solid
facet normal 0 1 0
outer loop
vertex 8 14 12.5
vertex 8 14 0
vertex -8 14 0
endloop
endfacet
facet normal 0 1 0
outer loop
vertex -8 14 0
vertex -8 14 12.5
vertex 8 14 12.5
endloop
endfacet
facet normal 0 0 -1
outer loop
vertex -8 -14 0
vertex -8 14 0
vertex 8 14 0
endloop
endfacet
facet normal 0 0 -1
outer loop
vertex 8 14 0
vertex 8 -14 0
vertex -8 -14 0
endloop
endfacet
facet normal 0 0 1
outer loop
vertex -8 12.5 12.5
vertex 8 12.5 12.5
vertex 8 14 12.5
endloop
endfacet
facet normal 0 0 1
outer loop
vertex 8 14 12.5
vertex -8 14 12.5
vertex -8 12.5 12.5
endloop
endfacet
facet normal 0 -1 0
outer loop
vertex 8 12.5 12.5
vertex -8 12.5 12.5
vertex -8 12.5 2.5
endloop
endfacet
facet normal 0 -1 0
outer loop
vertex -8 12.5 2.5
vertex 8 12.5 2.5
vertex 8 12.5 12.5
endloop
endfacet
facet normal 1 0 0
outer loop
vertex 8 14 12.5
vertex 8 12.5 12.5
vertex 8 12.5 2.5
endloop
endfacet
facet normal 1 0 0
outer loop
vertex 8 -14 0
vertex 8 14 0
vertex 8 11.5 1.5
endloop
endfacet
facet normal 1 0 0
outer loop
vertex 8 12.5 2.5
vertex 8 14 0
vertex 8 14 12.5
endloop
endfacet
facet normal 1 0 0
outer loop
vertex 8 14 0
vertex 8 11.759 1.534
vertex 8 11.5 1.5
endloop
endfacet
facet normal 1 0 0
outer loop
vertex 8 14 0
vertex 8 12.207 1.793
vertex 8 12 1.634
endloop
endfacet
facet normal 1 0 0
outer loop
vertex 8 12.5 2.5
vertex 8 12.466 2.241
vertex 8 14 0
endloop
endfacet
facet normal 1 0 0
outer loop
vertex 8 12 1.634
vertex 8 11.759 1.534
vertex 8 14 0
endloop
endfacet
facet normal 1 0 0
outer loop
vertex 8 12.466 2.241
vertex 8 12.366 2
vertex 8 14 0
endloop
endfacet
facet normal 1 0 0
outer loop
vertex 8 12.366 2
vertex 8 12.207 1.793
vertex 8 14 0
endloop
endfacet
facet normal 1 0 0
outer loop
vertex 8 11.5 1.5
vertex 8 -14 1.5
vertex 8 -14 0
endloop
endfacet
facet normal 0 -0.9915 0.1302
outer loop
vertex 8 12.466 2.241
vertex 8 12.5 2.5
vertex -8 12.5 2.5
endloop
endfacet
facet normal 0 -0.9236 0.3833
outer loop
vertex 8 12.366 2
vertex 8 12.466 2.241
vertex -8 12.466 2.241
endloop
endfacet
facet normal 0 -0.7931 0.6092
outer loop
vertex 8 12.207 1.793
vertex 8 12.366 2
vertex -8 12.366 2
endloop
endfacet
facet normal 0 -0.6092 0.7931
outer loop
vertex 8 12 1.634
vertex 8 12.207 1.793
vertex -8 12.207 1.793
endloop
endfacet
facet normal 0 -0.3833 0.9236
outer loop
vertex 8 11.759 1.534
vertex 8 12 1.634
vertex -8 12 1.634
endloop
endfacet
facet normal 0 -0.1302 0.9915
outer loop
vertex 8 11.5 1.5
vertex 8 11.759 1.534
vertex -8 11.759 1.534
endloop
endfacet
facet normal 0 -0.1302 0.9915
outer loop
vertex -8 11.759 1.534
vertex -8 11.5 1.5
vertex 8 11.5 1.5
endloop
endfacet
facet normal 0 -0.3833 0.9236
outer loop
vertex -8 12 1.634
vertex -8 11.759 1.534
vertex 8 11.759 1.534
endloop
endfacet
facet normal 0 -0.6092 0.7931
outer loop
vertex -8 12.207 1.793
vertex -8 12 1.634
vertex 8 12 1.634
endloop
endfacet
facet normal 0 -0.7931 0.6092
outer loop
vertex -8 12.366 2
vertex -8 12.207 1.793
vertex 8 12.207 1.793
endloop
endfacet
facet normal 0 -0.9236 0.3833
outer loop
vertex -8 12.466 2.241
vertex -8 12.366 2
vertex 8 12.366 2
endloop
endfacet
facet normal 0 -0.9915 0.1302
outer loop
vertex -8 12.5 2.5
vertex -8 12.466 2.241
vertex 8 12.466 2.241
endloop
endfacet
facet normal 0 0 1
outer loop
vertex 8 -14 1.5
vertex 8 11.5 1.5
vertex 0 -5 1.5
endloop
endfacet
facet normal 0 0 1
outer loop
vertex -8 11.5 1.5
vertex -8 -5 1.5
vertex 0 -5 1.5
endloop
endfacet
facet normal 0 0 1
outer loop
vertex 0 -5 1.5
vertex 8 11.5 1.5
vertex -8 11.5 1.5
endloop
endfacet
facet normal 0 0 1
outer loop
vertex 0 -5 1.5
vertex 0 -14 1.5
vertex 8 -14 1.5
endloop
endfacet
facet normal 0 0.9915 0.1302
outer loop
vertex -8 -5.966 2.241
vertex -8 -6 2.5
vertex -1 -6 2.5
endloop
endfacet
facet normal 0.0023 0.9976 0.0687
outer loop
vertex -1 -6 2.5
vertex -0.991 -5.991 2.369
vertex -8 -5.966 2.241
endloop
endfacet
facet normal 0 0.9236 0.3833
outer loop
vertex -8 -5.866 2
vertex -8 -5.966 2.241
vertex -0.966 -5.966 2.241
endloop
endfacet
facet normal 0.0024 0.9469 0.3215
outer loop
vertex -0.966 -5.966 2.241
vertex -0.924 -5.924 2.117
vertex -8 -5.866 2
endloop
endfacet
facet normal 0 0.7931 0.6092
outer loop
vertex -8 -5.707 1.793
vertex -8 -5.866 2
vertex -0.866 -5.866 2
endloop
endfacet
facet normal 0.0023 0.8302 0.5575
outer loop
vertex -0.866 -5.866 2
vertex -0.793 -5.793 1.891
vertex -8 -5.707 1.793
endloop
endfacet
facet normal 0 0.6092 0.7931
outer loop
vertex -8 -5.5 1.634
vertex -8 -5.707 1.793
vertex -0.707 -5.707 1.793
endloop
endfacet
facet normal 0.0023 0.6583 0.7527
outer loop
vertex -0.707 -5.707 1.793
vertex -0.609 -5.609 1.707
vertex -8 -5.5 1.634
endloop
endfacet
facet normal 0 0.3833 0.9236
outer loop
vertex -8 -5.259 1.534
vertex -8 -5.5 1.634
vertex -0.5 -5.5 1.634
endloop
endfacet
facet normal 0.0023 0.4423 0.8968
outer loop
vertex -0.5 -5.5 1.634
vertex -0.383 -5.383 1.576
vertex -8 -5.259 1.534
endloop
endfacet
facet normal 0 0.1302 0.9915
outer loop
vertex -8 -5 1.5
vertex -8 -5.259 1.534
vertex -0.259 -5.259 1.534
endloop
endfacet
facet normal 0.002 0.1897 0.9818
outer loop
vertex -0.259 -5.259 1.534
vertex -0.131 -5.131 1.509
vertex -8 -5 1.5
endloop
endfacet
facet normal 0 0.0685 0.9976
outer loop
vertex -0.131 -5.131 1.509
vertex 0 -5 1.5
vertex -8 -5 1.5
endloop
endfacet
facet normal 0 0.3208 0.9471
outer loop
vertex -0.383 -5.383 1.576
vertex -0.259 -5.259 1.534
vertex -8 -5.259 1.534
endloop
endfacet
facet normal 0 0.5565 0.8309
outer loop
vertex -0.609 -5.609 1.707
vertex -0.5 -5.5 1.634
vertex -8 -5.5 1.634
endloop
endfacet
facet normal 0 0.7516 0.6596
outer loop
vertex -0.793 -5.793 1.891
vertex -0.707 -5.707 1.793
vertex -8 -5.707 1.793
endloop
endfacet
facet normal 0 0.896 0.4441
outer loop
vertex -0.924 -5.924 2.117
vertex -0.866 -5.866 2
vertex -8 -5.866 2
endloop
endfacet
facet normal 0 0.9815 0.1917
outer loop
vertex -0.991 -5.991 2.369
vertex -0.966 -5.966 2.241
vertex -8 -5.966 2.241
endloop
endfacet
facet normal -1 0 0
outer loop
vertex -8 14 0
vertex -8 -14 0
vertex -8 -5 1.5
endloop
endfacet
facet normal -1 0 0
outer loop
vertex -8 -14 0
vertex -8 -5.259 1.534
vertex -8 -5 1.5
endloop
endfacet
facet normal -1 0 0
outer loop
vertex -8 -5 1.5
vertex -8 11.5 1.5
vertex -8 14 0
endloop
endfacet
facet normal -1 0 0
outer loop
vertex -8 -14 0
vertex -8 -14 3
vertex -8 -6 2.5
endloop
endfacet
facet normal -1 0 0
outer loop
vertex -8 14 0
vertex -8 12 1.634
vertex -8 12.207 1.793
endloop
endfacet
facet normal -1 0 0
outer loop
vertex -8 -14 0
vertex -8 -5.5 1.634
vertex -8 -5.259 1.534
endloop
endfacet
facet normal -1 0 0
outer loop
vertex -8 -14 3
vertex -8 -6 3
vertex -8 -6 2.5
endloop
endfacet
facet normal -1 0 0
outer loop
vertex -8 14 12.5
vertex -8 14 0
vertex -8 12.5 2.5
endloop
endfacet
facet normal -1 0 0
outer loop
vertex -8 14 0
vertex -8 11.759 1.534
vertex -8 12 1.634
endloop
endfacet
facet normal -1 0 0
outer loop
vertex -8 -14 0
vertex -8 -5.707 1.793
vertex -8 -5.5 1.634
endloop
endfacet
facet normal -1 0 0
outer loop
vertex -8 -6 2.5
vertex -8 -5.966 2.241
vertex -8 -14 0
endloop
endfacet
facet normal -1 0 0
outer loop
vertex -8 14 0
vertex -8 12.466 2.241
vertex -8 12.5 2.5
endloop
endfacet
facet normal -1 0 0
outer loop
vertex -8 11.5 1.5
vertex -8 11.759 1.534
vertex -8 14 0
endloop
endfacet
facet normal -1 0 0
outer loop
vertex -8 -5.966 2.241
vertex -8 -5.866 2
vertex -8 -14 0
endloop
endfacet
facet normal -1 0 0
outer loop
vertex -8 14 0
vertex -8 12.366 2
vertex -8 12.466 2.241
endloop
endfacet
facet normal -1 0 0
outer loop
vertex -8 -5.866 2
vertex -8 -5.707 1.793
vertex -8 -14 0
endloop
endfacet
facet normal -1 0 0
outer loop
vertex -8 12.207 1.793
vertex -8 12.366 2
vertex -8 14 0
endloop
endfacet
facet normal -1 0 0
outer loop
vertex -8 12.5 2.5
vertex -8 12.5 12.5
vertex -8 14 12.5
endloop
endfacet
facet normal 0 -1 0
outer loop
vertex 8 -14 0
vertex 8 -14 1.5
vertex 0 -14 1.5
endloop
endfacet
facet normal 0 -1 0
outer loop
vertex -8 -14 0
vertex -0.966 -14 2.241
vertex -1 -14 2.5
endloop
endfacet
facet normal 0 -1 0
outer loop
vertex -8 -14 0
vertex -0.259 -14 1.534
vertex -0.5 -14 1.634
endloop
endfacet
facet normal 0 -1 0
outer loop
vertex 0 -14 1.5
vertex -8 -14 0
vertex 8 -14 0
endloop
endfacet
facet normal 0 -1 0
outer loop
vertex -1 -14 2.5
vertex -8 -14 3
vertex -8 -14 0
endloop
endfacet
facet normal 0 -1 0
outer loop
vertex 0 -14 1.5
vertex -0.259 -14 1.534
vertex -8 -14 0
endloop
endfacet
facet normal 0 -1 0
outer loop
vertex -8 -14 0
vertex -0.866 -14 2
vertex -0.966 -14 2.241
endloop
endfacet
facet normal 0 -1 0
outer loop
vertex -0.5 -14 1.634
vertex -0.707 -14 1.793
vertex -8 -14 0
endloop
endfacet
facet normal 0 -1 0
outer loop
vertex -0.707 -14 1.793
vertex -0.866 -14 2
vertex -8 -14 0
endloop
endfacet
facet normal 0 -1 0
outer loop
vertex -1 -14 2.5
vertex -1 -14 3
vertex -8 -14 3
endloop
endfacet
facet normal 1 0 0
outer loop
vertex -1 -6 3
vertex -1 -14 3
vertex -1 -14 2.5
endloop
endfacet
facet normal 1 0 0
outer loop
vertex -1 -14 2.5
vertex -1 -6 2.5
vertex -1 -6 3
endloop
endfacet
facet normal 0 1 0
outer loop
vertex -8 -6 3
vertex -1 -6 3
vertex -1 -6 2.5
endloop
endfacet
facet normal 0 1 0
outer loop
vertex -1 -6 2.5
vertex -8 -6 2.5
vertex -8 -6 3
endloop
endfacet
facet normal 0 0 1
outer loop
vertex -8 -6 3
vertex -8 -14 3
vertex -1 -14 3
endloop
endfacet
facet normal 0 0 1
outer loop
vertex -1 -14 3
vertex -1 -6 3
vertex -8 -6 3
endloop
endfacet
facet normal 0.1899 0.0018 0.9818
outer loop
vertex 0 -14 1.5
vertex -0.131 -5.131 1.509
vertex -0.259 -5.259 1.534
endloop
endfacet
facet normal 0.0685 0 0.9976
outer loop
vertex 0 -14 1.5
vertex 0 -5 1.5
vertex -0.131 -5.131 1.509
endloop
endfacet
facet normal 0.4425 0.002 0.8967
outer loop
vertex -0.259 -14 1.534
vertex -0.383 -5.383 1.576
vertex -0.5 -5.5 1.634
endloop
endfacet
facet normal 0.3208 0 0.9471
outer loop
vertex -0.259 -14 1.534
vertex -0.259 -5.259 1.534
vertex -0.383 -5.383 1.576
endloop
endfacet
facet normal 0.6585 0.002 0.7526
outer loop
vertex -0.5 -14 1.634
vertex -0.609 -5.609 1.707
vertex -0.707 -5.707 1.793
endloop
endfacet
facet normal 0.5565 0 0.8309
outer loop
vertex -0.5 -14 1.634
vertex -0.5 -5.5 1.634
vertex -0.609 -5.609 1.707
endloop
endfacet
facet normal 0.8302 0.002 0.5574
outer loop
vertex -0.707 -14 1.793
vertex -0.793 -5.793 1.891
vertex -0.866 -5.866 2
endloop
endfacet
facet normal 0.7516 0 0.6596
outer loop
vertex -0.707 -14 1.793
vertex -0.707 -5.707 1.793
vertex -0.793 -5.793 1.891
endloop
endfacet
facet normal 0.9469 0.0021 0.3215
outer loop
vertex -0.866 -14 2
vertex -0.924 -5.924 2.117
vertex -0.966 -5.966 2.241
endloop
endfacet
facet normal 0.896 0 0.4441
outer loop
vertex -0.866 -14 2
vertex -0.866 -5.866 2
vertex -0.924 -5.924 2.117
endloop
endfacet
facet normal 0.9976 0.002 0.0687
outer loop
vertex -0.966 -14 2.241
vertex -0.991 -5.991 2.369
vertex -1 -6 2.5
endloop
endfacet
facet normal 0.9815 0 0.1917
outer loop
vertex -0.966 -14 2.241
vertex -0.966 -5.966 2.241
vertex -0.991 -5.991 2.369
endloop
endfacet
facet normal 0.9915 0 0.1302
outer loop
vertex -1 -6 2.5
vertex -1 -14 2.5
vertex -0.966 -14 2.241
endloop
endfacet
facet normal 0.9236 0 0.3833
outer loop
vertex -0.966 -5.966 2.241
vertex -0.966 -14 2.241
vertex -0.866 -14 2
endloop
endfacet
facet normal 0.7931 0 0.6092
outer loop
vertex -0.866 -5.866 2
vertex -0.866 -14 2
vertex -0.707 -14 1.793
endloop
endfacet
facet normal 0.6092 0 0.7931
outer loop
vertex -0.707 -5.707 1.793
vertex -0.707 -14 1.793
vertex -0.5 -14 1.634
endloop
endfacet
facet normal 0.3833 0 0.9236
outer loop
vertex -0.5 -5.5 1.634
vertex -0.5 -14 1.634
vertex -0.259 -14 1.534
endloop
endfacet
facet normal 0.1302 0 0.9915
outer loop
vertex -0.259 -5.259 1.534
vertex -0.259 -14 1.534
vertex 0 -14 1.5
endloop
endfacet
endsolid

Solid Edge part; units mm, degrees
sketch "Sketch1" plane through (0, 0, 0) normal (0, 0, 1) x (1, 0, 0)
  line L0 (8, -14) -> (8, 14)
  line L1 (8, 14) -> (-8, 14)
  line L2 (-8, 14) -> (-8, -14)
  line L3 (-8, -14) -> (8, -14)
extrude "Protrusion1" add sketch "Sketch1" along normal blind 1.5
sketch "Sketch2" plane through (0, 0, 1.5) normal (0, 0, 1) x (1, 0, 0)
  line L0 (-8, 12.5) -> (8, 12.5)
  line L1 (8, 12.5) -> (8, 14)
  line L2 (8, 14) -> (-8, 14)
  line L3 (-8, 14) -> (-8, 12.5)
extrude "ExtrudedProtrusion_2" add sketch "Sketch2" along normal blind 11
sketch "Sketch3" plane through (0, -1, 1.5) normal (0, 0, 1) x (0, 1, 0)
  line L0 (-5, 1) -> (-5, 8)
  line L1 (-5, 8) -> (-13, 8)
  line L2 (-13, 8) -> (-13, 1)
  line L3 (-13, 1) -> (-5, 1)
extrude "ExtrudedProtrusion_4" add sketch "Sketch3" along normal blind 1.5
fillet "Round1" radius 1 1 edges at (0, 12.5, 1.5)
fillet "Round_3" radius 1 2 edges at (-4.5, -6, 1.5) (-1, -10, 1.5)
